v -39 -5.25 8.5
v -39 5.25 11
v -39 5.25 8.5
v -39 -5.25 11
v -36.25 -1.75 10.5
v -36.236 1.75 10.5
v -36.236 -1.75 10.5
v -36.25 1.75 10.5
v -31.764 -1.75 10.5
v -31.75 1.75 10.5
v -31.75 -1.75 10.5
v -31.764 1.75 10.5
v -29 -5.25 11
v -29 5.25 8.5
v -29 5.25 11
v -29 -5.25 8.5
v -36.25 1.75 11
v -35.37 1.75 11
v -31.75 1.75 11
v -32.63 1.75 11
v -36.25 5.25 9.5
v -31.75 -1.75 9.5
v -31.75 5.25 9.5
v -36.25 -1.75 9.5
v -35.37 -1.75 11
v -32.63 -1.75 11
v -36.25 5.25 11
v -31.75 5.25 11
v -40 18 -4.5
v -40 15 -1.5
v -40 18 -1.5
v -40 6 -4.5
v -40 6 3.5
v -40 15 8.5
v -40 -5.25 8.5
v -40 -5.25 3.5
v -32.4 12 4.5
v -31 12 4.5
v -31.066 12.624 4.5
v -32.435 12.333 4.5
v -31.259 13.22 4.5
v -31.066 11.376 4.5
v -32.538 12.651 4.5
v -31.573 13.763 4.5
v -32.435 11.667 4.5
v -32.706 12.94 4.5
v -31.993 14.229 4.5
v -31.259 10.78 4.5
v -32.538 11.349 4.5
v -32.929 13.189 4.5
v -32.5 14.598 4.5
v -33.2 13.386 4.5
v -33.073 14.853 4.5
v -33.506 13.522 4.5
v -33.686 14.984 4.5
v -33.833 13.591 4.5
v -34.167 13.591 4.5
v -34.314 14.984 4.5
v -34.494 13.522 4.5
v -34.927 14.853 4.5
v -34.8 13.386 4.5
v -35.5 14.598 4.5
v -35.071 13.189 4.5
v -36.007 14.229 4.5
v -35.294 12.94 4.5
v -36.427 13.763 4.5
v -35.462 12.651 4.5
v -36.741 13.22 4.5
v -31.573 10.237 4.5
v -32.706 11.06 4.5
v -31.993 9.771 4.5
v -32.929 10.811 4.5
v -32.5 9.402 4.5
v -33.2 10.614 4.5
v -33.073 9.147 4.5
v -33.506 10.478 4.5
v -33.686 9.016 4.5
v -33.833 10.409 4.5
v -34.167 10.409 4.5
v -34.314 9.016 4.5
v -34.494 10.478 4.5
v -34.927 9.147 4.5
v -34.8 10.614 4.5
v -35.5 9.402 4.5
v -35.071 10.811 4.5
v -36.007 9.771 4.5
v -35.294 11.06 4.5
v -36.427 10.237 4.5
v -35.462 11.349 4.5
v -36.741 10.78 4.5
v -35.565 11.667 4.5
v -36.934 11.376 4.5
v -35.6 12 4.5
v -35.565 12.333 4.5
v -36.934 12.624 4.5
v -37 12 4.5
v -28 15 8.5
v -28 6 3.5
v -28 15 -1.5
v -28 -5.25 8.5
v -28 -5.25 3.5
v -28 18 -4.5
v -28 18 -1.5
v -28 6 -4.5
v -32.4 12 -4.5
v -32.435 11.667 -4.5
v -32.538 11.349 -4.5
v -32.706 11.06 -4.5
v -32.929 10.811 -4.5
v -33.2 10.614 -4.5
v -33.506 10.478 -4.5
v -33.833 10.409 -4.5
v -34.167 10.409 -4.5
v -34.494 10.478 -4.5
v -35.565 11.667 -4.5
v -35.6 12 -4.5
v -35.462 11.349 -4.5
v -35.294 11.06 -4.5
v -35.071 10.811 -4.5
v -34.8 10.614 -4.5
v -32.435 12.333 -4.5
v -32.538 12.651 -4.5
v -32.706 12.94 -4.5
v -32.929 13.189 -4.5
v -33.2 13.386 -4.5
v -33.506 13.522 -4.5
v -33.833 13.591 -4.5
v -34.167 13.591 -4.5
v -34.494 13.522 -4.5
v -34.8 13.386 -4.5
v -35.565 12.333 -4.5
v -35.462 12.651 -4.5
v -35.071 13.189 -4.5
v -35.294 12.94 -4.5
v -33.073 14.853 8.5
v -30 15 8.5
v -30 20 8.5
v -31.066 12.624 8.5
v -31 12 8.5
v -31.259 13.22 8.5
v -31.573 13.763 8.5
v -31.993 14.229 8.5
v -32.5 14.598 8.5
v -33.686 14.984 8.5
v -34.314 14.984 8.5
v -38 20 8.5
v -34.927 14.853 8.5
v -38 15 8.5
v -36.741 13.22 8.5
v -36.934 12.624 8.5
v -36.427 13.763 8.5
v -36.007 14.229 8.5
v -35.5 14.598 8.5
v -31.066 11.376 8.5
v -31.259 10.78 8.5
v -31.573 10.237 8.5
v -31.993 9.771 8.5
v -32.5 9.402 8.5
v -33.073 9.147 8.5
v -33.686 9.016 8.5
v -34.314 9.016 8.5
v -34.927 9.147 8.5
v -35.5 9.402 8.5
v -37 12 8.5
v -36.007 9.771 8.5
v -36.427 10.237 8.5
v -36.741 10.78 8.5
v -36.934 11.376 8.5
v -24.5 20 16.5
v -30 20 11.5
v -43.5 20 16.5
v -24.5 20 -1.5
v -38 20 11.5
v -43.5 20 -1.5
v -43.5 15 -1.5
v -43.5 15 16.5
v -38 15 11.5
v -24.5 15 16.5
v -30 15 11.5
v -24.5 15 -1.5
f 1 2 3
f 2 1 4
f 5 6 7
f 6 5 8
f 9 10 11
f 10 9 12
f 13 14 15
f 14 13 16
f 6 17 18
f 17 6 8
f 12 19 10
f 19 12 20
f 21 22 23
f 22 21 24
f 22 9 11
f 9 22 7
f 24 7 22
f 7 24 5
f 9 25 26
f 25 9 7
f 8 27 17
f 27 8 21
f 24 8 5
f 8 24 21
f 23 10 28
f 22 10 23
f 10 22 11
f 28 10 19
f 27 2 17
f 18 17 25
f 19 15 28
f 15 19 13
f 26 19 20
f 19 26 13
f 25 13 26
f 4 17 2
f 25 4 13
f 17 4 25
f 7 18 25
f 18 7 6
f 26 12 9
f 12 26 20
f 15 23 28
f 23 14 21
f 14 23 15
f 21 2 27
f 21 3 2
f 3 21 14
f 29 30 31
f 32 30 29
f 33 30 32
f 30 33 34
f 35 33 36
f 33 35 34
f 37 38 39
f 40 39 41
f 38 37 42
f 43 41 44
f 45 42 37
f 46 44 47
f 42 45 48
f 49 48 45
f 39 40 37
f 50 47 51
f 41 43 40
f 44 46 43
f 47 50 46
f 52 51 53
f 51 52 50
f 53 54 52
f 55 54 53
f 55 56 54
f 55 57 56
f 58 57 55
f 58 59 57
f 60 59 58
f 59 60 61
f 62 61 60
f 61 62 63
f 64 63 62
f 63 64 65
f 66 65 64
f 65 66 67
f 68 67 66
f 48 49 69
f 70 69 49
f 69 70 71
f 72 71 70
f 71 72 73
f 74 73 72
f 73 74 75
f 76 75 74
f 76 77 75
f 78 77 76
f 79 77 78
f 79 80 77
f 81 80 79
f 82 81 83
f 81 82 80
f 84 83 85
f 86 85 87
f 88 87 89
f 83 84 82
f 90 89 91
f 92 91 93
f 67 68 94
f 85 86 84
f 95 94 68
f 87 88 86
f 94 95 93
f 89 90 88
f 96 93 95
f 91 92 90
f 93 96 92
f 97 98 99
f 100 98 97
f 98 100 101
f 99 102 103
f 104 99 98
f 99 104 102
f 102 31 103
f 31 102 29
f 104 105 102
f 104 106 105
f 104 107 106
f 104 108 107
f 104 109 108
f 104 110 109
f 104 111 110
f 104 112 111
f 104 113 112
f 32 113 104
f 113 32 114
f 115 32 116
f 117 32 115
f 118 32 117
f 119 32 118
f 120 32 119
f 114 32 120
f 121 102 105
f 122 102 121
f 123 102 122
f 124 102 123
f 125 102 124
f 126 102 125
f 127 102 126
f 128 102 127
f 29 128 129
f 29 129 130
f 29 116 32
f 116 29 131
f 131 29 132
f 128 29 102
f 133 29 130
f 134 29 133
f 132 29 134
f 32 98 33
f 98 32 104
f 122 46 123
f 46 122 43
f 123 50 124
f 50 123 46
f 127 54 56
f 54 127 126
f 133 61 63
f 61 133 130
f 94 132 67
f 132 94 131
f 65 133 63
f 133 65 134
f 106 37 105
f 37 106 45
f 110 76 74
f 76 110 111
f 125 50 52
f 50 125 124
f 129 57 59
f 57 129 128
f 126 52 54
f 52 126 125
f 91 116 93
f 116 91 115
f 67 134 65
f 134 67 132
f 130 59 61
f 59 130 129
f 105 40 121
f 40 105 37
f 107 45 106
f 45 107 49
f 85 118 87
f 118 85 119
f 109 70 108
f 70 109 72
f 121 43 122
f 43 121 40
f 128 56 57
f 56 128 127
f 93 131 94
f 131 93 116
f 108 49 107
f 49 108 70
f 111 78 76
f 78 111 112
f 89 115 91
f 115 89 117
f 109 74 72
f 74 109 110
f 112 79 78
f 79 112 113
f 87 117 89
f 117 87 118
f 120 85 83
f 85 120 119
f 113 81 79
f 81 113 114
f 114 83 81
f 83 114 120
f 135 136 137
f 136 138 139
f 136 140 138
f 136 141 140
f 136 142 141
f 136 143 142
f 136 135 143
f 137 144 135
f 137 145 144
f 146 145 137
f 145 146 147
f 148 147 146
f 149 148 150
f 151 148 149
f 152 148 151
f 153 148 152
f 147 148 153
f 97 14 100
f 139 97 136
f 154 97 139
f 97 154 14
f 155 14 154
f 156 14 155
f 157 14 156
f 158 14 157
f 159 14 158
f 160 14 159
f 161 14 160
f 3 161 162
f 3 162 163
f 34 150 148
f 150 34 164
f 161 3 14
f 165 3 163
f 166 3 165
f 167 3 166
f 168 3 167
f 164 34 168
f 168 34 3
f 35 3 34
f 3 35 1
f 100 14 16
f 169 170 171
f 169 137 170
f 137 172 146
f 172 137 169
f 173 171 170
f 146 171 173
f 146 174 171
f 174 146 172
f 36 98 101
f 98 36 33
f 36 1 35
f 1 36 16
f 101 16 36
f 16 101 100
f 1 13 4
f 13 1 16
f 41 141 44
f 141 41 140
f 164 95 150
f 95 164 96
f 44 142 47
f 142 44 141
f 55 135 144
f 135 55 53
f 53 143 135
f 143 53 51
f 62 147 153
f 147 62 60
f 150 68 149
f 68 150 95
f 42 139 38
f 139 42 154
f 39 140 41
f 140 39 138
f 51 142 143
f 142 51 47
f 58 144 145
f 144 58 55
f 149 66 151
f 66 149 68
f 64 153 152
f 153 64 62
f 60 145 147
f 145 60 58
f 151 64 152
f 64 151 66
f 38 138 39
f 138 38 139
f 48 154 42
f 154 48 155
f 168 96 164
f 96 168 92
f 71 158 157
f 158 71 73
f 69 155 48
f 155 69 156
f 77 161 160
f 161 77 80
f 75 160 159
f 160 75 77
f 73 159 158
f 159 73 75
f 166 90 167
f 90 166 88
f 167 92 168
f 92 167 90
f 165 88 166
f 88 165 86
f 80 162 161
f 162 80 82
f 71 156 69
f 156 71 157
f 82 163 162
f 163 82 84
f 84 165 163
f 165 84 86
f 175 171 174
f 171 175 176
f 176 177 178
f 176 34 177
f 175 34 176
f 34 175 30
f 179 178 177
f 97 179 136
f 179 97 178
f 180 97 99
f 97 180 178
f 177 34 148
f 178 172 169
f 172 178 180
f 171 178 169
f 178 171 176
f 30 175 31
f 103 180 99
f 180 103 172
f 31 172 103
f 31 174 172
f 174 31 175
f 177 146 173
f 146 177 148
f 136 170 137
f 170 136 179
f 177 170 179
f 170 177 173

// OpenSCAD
hallEffectSensor();







module hallEffectSensor(){

///////////////////////////////////////////////////////////////
//Tob hall effect sensor box
//////////////////////////////////////////////////////////////
translate([0,0,0]){
difference(){
translate([-34,0,10]) cube([10,3.5,1], center = true);

translate([-34,0,10]) cube([4+0.5,4,1], center = true);  
}    

difference(){
translate([-34,0,10+0.5+0.25]) cube([10,3.5,0.5], center = true);


translate([-34,0,5.4+0.3]) rotate([0,60,0]) cube([10.55,4,6], center = true);  
    
translate([-34,0,5.4+0.3]) rotate([0,-60,0]) cube([10.55,4,6], center = true);      
}  


translate([-34,-3.5,10+0.25]) cube([10,3.5,1.5], center = true);

difference(){
translate([-34,3.5,10+0.25]) cube([10,3.5,1.5], center = true);

translate([-34,0,10+0.25]) cube([4+0.5,15,1.5], center = true); 

}


translate([-34,0,10-1.25]) cube([10,10.5,1.5], center = true);


//end of hall effect sensor box






difference(){
translate([-34,12,4.5-2-2.5]) cube([12,12,8-4+5], center = true);

//hole through baseplate
translate([-34,12,-8]) rotate([0,0,0]) cylinder(h = 25, d=3.2, $fn = 30, center = true);


}







difference(){
    
//baseplate    
translate([-34,7.375,6]) cube([12,40-14.75,5], center = true);

translate([-34,12,6]) rotate([0,0,0]) cylinder(h = 6, d=6, $fn = 30, center = true);    
}}


///////////////////////////////////////////////////////////////







//bottom mount

translate([-34,-1.75,11.5])rotate([90,0,0]){
difference(){  
translate([0,-1.5-2.5,-19.25])cube(size = [15+4,8+5+5,5], center = true);

translate([0,-1.5,0]) cube(size = [8,3,100], center = true);
}

}









}
